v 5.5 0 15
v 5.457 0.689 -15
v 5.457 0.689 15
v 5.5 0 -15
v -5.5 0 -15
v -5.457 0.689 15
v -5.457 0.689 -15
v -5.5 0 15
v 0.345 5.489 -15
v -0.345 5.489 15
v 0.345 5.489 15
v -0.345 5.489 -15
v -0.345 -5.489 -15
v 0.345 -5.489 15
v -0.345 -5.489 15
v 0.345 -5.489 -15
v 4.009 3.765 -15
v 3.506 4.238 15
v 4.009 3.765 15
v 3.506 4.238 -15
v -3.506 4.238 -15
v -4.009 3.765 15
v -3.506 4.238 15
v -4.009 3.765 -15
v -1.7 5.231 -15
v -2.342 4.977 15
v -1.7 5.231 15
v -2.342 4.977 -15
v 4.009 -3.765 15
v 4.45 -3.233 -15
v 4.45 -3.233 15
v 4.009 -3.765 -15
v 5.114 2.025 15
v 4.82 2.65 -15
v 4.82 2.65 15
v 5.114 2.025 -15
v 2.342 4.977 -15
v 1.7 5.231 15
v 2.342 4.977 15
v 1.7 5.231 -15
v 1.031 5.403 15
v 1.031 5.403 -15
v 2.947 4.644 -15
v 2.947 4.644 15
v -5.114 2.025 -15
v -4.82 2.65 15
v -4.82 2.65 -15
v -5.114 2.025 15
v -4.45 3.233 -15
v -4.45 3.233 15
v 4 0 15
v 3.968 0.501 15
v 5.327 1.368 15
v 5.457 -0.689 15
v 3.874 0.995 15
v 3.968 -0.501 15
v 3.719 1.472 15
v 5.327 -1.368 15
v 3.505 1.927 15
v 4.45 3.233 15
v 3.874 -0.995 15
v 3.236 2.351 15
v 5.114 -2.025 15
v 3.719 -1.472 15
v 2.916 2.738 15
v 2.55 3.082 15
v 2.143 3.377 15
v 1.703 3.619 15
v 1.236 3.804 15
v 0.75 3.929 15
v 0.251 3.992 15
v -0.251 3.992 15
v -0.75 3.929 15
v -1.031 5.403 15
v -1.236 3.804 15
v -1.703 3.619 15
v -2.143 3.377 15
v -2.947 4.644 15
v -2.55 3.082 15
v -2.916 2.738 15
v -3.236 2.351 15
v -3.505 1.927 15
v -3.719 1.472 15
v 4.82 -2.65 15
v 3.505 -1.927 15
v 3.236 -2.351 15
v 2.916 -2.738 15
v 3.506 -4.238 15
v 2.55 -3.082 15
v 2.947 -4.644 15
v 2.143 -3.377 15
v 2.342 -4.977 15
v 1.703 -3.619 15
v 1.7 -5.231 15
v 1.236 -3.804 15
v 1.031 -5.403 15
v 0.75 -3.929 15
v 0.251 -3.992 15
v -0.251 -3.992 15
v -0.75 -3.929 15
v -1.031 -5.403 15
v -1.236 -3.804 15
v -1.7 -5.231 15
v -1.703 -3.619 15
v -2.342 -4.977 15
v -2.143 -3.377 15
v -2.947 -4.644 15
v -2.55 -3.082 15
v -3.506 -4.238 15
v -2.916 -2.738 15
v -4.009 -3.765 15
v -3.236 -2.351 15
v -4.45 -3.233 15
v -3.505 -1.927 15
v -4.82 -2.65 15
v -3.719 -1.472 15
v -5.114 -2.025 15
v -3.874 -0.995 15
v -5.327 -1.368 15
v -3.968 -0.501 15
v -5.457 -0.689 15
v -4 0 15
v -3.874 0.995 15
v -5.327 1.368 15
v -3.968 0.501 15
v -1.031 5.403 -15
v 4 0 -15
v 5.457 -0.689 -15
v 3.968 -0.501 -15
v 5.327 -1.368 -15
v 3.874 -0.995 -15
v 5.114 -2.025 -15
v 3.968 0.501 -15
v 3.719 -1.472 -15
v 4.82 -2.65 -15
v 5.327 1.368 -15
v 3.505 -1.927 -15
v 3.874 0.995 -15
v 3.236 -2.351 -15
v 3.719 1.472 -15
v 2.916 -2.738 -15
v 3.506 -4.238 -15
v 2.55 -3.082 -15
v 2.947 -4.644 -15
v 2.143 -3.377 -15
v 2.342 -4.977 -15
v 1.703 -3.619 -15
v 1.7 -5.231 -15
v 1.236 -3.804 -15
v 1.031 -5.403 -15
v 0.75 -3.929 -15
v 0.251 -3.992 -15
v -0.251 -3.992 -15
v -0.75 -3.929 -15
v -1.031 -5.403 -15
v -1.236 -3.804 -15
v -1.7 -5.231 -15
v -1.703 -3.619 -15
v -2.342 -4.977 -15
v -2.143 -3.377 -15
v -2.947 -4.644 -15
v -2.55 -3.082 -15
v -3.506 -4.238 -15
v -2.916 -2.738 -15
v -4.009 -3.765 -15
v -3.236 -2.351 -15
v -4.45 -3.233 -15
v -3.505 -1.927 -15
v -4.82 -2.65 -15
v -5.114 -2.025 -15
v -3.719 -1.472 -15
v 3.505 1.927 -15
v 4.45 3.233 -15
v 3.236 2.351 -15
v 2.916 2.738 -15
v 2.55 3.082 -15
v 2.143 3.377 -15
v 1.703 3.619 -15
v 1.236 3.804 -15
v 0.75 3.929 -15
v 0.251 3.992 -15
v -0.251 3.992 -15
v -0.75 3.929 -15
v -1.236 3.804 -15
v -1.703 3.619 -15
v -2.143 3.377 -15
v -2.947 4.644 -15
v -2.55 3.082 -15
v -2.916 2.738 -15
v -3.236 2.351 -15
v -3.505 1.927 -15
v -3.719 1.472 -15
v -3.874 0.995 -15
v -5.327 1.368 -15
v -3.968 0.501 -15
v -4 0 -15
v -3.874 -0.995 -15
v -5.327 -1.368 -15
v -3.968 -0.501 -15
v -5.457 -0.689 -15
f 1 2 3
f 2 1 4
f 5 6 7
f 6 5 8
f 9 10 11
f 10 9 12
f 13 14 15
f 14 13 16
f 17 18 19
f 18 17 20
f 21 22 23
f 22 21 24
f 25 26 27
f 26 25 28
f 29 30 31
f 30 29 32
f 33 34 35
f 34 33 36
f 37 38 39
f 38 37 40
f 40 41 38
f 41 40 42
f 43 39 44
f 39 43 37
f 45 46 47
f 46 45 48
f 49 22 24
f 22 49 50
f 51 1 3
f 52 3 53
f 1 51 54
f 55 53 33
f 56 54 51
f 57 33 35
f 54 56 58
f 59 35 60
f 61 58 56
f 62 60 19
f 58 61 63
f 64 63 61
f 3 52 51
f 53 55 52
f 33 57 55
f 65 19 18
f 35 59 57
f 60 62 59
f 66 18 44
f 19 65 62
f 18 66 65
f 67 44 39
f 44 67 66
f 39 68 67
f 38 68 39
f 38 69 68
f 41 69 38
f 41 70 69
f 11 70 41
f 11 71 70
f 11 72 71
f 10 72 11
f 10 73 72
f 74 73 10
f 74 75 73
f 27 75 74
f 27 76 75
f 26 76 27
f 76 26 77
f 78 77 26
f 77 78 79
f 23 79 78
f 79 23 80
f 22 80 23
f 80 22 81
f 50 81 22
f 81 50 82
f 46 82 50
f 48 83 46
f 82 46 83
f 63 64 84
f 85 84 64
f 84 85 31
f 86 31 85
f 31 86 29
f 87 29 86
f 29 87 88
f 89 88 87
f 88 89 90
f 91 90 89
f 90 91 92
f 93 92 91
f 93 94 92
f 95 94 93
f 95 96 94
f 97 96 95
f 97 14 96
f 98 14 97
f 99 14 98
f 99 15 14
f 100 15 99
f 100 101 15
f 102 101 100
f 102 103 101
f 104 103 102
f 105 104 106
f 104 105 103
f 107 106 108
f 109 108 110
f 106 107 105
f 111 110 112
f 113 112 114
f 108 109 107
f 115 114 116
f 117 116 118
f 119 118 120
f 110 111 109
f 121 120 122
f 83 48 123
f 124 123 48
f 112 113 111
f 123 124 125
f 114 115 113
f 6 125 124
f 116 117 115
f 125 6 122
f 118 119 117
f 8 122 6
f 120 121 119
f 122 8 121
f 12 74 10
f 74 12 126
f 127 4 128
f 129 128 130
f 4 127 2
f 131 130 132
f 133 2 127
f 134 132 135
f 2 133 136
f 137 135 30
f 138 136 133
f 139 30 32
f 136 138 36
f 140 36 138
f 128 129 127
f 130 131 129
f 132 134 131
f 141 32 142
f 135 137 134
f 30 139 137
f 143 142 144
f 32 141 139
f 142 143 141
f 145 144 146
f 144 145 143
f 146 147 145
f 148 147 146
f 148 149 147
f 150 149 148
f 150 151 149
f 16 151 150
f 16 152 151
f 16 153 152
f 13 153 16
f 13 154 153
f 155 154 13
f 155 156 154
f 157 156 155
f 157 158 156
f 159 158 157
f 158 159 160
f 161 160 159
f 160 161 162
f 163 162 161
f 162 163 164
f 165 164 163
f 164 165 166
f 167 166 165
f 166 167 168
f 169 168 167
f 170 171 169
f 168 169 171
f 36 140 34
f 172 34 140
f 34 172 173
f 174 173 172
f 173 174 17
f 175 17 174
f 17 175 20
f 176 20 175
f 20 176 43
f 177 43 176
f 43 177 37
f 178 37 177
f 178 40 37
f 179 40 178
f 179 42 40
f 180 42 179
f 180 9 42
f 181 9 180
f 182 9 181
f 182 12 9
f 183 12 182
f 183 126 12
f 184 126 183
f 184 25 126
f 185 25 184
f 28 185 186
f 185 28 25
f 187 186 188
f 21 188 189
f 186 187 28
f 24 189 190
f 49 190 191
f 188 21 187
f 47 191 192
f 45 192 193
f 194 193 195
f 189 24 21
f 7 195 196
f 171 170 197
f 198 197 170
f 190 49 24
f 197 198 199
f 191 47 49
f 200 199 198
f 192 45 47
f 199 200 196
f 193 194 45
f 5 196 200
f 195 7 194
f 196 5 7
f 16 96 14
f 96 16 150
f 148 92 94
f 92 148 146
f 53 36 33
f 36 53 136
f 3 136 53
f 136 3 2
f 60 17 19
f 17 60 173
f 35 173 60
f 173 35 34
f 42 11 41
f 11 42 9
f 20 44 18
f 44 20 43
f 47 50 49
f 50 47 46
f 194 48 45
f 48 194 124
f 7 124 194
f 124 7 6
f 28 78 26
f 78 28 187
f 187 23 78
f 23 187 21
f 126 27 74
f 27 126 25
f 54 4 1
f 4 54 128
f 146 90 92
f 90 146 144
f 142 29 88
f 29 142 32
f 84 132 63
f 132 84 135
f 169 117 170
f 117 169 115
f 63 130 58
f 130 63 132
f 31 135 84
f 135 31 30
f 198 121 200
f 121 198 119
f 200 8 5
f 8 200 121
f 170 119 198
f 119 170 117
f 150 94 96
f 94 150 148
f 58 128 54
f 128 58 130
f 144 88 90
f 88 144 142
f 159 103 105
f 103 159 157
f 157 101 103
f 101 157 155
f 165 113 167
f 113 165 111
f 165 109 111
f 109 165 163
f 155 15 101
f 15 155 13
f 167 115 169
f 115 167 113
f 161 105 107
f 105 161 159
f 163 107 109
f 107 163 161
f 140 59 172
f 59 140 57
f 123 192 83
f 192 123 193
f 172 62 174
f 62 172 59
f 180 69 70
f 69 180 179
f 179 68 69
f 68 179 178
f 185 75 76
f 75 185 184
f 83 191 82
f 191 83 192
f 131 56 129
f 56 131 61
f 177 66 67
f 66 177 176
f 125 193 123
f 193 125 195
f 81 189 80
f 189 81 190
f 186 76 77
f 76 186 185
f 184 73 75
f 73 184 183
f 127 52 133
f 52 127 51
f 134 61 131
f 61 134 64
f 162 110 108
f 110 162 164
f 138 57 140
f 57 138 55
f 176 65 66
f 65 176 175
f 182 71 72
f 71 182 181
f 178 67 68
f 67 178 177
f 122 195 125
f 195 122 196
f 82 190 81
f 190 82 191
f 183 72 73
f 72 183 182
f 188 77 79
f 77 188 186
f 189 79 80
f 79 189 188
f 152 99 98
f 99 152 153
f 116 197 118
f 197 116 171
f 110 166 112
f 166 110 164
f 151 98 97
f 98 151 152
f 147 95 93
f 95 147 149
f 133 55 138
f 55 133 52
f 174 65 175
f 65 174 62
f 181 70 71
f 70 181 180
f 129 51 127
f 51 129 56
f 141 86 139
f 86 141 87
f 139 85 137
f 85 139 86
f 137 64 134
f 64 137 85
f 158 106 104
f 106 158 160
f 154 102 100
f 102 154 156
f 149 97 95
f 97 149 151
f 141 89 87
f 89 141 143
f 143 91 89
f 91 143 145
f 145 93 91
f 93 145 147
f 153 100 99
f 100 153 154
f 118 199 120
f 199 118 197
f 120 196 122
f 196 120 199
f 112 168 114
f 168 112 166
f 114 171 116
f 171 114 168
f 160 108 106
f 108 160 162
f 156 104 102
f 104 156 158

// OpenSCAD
$fn = 50;


difference() {
	union() {
		translate(v = [0, 0, -15.0000000000]) {
			cylinder(h = 30, r = 5.5000000000);
		}
	}
	union() {
		translate(v = [0, 0, -100.0000000000]) {
			cylinder(h = 200, r = 4.0000000000);
		}
	}
}
